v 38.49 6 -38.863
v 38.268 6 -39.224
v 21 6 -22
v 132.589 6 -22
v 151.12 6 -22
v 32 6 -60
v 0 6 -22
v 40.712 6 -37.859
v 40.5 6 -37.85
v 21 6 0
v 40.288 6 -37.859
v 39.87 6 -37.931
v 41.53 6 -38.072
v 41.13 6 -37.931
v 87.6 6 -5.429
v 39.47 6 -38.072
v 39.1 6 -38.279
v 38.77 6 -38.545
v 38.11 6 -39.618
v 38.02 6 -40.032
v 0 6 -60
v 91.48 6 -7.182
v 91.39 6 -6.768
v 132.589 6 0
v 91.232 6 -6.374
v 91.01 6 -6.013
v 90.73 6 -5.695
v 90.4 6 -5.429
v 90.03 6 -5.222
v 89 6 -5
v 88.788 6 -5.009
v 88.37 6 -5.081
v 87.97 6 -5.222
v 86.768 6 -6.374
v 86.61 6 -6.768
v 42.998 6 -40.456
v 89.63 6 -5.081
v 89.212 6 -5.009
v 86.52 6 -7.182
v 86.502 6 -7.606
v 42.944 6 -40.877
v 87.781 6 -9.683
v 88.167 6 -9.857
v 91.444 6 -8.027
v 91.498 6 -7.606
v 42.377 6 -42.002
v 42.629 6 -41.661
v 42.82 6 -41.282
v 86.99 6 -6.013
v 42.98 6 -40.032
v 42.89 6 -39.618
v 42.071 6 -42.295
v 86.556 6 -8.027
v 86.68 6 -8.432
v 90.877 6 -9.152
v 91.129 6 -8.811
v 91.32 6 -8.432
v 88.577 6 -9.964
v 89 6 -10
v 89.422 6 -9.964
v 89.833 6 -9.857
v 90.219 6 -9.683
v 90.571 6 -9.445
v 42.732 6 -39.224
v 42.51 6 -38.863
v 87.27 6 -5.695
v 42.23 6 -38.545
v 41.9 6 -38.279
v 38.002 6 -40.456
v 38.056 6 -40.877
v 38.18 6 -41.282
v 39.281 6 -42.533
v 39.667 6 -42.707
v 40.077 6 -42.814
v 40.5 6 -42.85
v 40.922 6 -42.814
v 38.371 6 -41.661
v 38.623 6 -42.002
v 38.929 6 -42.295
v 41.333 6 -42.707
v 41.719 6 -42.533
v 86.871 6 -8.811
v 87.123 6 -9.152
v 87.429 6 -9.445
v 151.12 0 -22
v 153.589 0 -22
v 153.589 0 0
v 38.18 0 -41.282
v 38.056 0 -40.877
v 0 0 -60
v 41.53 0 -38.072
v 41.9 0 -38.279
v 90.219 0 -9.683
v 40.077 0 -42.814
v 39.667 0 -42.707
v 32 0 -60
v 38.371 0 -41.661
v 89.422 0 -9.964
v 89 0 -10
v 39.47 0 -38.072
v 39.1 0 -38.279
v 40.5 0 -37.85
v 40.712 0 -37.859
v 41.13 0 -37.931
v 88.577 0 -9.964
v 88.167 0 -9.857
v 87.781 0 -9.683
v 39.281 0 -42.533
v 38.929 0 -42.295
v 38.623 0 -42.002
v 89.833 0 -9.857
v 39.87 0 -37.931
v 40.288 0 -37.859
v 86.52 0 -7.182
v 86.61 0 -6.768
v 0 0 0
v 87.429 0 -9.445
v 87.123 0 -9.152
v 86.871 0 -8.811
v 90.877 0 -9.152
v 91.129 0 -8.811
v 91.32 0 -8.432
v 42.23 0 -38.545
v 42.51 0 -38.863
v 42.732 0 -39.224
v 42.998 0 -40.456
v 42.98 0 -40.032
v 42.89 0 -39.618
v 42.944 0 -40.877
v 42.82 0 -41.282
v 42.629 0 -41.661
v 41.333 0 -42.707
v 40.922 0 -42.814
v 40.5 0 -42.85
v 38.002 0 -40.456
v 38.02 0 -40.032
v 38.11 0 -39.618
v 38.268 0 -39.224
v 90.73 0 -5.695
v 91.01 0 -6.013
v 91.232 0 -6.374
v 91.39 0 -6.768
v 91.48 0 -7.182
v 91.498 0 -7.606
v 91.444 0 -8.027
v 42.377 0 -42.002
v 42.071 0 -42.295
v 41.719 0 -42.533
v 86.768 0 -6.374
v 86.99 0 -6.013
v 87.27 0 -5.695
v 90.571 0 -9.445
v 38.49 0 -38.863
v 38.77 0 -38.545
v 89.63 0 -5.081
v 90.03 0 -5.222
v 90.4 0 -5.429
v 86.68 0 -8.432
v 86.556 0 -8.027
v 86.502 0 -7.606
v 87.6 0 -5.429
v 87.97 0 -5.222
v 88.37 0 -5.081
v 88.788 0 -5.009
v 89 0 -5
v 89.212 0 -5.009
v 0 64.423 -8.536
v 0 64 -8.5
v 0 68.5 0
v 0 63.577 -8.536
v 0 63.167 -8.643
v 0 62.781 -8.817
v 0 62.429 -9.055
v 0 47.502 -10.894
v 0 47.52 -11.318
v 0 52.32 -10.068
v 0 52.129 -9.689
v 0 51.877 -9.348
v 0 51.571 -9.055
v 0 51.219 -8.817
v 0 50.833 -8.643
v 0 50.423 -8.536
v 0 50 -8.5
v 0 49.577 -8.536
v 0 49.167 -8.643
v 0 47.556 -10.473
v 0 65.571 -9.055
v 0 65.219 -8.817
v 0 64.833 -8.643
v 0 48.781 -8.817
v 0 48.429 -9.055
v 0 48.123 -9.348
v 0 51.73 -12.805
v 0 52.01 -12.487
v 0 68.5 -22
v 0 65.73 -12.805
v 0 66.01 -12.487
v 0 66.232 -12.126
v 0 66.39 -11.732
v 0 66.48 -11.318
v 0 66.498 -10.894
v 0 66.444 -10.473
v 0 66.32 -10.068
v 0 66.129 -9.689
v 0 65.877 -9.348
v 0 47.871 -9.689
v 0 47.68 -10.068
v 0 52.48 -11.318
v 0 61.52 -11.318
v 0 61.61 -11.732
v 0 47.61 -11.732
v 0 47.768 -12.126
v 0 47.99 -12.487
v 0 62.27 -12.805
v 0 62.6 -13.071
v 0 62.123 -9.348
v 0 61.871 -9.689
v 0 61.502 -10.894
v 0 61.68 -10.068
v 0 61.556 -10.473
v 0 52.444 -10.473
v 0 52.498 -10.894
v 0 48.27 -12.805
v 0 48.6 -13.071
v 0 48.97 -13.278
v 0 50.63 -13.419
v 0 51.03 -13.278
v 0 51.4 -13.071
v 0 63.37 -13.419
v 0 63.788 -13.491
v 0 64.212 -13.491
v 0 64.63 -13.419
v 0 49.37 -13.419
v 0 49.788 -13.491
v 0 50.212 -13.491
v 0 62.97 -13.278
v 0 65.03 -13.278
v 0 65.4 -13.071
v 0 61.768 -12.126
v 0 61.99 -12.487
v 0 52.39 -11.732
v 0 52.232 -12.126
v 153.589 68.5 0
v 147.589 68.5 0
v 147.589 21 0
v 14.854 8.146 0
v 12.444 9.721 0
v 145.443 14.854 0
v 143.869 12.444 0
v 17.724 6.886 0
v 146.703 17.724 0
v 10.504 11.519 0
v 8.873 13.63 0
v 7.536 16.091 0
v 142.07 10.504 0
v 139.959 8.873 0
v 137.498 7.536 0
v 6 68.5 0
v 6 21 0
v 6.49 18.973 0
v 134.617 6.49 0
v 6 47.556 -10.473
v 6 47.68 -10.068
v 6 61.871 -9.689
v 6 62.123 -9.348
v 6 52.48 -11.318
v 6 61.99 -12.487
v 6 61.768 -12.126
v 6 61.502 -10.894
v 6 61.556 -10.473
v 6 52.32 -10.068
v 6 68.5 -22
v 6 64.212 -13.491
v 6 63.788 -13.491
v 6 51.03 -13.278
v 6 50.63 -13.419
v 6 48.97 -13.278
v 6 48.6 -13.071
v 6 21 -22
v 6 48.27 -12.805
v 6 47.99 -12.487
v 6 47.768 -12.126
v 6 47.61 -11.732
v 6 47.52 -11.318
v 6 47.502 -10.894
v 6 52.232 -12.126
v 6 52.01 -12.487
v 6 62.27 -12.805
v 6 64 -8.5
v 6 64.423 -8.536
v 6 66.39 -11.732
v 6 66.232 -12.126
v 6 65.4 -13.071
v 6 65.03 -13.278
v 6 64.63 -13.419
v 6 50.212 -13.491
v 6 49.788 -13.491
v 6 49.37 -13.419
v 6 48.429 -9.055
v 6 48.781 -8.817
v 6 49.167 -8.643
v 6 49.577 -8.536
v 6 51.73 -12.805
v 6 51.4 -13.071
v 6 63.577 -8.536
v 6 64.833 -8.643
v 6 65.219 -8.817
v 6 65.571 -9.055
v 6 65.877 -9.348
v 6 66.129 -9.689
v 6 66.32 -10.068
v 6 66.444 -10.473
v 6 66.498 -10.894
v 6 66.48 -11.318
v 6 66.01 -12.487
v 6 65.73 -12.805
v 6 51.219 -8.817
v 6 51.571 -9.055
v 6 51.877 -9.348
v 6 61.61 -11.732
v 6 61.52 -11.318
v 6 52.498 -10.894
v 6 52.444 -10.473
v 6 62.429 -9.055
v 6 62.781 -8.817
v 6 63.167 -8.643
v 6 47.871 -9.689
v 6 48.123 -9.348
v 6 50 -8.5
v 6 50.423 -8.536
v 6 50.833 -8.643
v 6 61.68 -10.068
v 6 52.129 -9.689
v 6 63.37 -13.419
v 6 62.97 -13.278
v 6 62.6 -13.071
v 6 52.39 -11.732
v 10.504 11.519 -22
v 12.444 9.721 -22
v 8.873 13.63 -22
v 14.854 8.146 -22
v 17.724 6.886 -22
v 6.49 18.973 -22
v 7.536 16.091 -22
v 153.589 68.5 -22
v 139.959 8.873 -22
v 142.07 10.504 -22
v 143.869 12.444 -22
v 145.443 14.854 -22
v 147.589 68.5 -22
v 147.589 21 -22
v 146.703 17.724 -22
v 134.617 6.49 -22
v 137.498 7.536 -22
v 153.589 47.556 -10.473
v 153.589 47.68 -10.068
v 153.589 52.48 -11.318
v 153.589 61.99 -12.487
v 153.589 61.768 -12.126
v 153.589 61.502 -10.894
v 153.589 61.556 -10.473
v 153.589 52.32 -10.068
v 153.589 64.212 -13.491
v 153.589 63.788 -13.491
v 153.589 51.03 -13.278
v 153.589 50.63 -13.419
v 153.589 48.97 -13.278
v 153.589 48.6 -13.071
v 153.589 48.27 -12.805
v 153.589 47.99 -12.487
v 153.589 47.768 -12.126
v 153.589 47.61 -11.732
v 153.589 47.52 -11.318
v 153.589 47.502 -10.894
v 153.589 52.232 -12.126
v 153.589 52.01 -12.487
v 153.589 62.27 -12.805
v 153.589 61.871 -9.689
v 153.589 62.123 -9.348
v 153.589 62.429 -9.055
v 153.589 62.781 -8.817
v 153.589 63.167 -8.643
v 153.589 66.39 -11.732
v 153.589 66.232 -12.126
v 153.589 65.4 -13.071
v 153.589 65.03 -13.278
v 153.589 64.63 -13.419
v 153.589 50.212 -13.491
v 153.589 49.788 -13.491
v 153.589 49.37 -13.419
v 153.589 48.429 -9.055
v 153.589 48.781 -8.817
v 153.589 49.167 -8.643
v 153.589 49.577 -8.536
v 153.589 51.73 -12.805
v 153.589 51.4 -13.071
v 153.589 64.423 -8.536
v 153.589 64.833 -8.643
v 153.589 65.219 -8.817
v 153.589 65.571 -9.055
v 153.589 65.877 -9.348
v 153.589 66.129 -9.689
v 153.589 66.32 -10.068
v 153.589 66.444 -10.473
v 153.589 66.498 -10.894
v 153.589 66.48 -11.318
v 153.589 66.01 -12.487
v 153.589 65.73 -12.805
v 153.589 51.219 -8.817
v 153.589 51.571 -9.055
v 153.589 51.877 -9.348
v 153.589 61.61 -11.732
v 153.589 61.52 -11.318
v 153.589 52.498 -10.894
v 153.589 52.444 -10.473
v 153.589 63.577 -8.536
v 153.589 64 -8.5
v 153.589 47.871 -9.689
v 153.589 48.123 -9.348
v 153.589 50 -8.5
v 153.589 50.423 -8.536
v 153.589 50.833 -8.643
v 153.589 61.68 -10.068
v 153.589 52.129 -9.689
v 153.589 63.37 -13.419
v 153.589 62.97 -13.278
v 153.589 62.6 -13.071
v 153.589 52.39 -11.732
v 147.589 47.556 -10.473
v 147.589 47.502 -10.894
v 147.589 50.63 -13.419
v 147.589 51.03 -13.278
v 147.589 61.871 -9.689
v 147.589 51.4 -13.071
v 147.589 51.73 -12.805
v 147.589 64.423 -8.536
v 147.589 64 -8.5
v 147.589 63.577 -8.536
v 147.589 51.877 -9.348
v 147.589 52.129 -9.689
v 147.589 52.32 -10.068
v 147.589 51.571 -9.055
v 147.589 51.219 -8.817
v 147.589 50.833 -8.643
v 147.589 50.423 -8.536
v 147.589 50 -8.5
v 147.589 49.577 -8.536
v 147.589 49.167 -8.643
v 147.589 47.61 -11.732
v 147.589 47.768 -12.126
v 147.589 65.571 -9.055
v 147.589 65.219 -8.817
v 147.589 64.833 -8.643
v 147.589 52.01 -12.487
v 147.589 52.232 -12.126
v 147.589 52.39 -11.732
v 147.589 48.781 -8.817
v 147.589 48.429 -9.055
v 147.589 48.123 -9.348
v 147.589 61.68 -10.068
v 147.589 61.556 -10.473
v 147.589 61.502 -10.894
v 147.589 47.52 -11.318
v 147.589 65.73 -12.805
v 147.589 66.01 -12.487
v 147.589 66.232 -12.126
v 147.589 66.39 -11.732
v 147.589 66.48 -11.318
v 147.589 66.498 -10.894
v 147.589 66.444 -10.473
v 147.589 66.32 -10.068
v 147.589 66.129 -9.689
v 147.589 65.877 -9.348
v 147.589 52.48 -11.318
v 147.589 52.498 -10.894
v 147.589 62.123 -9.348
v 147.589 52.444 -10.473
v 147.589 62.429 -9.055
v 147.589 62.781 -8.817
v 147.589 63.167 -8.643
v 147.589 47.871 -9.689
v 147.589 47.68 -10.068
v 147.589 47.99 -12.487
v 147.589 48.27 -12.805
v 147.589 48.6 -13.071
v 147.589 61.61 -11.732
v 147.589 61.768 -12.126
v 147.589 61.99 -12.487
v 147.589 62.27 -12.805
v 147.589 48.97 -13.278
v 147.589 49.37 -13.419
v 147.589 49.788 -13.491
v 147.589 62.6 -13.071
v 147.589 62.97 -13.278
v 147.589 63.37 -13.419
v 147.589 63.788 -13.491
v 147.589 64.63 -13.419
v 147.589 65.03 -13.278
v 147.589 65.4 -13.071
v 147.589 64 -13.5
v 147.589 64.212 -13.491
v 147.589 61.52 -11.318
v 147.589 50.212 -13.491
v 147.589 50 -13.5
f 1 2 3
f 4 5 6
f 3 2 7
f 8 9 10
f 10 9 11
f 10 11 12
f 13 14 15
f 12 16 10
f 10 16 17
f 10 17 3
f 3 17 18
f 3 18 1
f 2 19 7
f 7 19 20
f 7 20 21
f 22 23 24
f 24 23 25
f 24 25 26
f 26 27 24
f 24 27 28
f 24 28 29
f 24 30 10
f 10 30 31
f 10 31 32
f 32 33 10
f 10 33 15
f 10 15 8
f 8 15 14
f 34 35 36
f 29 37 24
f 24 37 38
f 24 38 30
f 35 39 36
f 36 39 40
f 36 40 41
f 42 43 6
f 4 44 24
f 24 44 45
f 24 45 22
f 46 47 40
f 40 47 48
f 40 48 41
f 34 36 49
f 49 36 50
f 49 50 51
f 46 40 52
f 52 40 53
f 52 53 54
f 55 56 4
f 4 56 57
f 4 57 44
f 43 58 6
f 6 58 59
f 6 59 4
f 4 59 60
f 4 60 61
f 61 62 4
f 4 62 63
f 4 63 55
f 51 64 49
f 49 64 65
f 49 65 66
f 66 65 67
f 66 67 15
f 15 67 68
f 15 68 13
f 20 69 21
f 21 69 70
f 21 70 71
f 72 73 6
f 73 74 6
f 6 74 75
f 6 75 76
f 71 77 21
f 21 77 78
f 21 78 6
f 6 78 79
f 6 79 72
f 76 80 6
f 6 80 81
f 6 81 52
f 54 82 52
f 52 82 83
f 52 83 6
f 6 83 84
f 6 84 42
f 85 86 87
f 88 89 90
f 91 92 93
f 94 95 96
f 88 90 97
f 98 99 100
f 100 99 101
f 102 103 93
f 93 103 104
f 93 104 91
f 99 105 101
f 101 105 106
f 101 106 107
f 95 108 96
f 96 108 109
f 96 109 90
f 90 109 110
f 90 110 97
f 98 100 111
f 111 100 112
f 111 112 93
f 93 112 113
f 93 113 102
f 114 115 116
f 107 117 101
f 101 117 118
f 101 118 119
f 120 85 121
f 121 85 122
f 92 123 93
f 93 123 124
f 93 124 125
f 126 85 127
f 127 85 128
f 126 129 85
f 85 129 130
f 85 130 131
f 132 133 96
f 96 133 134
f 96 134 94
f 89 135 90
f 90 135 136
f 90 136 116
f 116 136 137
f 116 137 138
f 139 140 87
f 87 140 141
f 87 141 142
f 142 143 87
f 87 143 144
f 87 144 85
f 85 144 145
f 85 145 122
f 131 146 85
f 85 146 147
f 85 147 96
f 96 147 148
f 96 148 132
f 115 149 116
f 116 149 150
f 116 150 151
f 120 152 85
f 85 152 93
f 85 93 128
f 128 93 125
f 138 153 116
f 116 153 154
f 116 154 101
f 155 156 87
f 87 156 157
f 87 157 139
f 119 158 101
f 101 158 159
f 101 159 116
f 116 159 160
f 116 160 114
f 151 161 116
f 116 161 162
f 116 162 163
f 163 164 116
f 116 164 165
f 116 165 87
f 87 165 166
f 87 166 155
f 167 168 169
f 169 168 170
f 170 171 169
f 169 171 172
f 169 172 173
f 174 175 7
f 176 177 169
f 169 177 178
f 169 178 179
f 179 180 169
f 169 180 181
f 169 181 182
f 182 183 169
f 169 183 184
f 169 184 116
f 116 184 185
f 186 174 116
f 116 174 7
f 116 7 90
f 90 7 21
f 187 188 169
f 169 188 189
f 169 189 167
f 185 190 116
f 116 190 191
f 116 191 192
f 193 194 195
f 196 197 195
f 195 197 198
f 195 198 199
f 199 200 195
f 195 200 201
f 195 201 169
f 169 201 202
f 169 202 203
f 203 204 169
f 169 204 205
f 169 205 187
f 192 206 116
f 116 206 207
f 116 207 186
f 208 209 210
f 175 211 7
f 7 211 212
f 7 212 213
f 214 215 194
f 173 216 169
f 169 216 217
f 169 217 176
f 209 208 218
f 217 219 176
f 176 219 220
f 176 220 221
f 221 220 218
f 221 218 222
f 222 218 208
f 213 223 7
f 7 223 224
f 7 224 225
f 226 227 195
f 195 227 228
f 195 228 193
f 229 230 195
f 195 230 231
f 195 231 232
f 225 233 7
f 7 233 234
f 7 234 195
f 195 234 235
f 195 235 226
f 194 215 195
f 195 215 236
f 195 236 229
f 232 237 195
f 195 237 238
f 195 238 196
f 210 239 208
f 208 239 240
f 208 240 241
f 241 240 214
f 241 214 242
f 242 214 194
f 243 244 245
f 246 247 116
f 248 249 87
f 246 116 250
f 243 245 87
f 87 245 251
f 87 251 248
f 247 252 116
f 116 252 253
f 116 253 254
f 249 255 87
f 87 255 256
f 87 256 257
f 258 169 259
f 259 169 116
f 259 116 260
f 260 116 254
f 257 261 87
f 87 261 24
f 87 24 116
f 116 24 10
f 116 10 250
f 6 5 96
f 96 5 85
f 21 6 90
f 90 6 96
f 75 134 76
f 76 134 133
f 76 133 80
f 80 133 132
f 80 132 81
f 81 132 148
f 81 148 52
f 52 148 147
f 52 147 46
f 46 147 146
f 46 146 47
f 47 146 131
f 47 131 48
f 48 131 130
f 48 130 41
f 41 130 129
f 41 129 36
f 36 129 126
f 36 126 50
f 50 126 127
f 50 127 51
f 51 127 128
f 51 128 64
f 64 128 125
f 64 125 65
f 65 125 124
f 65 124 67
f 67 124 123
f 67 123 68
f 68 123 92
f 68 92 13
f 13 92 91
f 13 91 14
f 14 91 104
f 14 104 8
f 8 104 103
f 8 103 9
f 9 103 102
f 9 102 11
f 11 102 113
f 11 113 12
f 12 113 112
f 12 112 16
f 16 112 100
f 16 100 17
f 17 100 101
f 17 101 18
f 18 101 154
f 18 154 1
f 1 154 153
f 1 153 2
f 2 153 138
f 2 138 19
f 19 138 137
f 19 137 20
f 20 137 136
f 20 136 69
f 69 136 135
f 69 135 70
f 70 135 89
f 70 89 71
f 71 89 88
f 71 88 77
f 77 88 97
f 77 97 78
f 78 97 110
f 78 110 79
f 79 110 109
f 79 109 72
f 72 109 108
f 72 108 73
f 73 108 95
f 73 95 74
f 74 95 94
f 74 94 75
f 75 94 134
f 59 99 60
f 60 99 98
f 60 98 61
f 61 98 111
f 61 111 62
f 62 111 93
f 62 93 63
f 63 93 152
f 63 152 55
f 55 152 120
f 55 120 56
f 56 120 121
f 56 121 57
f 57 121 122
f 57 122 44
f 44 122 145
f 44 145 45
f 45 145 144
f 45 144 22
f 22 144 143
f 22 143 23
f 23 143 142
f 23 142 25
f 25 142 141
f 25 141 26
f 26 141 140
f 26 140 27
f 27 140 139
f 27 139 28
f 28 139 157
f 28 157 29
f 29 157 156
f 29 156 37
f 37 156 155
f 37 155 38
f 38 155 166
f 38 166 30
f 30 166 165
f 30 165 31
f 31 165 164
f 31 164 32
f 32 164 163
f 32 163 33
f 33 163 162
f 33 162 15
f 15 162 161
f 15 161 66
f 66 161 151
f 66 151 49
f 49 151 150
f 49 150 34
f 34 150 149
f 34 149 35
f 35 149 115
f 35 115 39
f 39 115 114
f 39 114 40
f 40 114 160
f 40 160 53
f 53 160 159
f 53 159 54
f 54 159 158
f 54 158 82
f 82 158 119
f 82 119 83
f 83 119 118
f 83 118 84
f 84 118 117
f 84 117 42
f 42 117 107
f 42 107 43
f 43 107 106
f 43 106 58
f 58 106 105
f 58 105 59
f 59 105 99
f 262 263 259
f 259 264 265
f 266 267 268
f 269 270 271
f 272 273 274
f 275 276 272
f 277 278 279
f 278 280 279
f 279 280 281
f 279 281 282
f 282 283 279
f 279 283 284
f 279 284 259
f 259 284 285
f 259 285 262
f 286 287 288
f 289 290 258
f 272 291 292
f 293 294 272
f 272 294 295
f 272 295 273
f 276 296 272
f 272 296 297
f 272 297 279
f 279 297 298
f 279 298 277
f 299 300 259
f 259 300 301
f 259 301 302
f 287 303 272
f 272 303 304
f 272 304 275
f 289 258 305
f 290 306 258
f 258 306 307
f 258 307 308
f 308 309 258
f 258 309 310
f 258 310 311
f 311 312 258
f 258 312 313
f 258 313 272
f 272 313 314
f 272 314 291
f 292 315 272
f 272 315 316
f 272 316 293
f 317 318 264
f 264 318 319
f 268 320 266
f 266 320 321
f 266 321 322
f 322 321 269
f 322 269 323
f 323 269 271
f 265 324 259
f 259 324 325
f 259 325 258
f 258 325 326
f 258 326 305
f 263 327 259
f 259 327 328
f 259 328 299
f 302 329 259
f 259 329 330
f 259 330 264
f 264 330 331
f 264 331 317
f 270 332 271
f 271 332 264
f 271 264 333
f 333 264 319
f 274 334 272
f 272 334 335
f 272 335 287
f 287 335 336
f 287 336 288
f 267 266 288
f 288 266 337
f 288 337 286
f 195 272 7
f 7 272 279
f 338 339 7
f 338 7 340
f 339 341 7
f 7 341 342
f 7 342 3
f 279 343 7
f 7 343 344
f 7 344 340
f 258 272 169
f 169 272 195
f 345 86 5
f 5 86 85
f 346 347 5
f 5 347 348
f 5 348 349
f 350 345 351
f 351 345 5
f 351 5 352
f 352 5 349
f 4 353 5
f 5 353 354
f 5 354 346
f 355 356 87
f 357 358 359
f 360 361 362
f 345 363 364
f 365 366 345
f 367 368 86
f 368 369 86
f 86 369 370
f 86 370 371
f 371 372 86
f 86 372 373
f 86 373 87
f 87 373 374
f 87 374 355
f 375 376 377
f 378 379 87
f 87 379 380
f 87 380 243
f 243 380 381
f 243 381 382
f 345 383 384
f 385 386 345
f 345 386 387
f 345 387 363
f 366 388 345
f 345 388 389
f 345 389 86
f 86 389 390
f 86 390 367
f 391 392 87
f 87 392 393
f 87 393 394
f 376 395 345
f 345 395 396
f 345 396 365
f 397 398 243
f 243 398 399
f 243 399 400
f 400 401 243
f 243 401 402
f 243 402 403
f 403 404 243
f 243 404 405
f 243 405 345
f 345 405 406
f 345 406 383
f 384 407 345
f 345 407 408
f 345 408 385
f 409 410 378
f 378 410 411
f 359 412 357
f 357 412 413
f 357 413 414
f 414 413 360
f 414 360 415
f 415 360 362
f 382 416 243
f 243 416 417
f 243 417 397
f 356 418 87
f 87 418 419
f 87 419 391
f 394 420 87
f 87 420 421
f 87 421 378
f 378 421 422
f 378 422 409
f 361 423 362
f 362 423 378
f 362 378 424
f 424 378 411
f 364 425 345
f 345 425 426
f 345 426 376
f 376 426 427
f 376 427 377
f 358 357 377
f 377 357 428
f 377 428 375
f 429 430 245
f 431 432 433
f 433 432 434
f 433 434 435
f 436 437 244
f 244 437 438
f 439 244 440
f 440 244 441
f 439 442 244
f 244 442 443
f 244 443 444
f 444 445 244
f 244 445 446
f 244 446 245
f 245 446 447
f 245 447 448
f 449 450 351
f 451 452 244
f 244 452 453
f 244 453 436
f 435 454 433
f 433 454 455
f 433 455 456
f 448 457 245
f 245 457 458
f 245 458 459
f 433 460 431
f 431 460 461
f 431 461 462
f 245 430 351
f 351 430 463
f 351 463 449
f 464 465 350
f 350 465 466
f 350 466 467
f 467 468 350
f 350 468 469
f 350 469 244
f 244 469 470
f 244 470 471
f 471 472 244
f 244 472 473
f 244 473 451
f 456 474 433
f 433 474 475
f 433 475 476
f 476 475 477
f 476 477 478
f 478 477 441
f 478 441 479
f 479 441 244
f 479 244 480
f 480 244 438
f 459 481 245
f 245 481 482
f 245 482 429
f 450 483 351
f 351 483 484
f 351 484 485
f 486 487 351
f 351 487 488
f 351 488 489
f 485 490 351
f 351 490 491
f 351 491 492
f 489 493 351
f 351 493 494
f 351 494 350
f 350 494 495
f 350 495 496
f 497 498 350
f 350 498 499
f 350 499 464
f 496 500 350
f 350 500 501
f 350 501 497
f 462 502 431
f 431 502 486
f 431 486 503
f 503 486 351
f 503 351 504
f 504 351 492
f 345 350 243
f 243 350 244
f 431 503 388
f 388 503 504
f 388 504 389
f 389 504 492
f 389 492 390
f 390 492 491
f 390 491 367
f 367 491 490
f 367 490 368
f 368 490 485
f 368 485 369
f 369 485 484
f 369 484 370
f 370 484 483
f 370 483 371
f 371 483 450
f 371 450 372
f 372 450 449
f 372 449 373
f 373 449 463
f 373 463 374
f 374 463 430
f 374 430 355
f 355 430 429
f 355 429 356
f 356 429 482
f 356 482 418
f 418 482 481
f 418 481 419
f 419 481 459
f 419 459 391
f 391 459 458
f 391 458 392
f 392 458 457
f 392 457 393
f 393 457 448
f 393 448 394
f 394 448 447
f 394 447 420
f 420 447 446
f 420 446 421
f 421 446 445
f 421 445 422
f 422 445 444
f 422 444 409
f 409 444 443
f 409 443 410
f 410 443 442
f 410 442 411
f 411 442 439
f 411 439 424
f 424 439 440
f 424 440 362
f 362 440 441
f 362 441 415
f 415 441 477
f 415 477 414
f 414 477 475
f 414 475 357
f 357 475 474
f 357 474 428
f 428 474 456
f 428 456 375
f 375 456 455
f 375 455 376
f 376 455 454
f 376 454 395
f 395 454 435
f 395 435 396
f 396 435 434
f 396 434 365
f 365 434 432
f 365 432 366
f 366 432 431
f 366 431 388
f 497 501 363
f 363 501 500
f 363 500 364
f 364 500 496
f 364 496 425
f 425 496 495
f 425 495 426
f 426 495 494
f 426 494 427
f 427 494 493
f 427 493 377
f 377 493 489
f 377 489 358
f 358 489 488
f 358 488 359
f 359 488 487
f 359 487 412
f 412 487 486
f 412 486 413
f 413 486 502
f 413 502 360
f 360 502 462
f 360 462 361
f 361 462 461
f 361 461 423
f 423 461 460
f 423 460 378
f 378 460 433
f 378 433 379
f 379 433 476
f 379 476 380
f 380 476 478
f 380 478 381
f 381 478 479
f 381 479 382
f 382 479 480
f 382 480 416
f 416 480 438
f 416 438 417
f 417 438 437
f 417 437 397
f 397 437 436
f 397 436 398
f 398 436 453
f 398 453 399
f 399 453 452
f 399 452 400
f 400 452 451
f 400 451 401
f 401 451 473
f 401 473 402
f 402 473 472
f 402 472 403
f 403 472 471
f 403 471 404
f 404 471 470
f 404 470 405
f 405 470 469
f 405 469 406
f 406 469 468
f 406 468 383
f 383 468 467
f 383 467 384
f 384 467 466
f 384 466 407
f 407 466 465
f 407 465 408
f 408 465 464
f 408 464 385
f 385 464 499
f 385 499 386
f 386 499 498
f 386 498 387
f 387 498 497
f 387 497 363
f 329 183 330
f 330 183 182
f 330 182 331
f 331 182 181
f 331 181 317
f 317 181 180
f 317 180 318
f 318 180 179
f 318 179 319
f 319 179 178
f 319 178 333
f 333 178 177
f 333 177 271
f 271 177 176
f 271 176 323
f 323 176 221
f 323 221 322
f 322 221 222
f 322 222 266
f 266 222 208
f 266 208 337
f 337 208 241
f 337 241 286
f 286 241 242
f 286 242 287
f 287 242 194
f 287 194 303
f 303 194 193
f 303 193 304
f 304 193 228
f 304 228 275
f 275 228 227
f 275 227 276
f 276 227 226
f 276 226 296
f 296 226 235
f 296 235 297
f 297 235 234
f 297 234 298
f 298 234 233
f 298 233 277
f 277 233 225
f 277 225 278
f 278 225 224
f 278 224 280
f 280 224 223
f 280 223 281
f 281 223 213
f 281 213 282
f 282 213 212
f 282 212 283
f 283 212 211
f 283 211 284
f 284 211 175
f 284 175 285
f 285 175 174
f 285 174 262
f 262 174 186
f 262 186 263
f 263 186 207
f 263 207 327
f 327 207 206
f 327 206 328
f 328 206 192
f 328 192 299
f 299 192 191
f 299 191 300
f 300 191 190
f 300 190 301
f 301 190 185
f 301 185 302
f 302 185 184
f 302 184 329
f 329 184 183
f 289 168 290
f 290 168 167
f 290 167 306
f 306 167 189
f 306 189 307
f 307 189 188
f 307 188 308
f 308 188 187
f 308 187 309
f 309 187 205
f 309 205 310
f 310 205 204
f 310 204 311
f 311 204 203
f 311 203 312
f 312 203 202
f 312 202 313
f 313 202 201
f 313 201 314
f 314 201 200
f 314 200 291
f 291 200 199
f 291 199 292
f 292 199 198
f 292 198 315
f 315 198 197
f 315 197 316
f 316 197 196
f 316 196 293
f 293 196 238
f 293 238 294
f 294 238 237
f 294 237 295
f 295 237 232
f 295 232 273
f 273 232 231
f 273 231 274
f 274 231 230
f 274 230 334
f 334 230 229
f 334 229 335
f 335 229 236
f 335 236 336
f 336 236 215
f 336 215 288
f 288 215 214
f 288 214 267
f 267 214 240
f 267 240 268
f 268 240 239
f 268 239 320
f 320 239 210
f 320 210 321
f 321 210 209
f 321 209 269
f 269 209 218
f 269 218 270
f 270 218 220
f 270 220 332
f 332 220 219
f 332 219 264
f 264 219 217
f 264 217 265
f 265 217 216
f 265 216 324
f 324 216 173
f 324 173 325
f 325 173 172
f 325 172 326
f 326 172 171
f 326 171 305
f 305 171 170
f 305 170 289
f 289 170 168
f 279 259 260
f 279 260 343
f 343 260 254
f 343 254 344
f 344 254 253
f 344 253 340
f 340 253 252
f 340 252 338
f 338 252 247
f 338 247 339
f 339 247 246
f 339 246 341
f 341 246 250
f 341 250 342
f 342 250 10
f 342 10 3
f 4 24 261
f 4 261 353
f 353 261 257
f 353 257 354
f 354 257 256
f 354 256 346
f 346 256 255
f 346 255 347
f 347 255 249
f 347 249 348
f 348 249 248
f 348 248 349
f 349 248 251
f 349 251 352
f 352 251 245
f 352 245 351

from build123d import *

# Parameters (mm, degrees)
SKETCH1_R                       = 2.5
BOSS_EXTRUDE1_DEPTH             = 6
SKETCH2_W                       = 6
SKETCH2_H                       = 22
BOSS_EXTRUDE2_DEPTH             = 62.5
BOSS_EXTRUDE3_REACH             = 176.194
SKETCH4_W                       = 6
SKETCH4_H                       = 22
BOSS_EXTRUDE3_DIRECTION_2_REACH = 176.194
SKETCH3_R                       = 2.5
CUT_EXTRUDE2_DEPTH              = 179.555261525
BOSS_EXTRUDE4_DEPTH             = 22


with BuildPart() as part:
    # Sketch1 → Boss-Extrude1 (new body)
    with BuildSketch(Plane(origin=(0, 0, 0), x_dir=(1, 0, 0), z_dir=(0, 1, 0))):
        Polygon((32, 60), (151.12, 22), (151.12, 0), (0, 0), (0, 60), align=None)
        with Locations(Location((40.5, 40.35, 0), (0, 0, 270))):
            Circle(SKETCH1_R, mode=Mode.SUBTRACT)
        with Locations(Location((89, 7.5, 0), (0, 0, 270))):
            Circle(SKETCH1_R, mode=Mode.SUBTRACT)
    extrude(amount=BOSS_EXTRUDE1_DEPTH)

    # Sketch2 → Boss-Extrude2 (add)
    with BuildSketch(Plane(origin=(0, 6, 0), x_dir=(1, 0, 0), z_dir=(0, 1, 0))):
        with Locations((3, 11)):
            Rectangle(SKETCH2_W, SKETCH2_H)
    extrude(amount=BOSS_EXTRUDE2_DEPTH)

    # Boss-Extrude3: up to this face of the body (flat: up to its plane)
    boss_extrude3_end = Plane(part.part.faces().sort_by_distance((3, 68.5, -11))[0])
    # Sketch4 → Boss-Extrude3 (add, up to the picked face)
    with BuildSketch(Plane(origin=(0, 6, 0), x_dir=(1, 0, 0), z_dir=(0, 1, 0)), mode=Mode.PRIVATE) as boss_extrude3_sk1:
        with Locations((150.589489934, 11)):
            Rectangle(SKETCH4_W, SKETCH4_H)
    boss_extrude3_tool1 = split(extrude(boss_extrude3_sk1.sketch, amount=BOSS_EXTRUDE3_REACH, mode=Mode.PRIVATE), bisect_by=boss_extrude3_end, keep=Keep.BOTH, mode=Mode.PRIVATE)
    add(boss_extrude3_tool1.solids().sort_by(Axis((150.58949, 6, -11), (0, 1, 0)))[0])

    # Boss-Extrude3 direction 2: up to this face of the body (flat: up to its plane)
    boss_extrude3_direction_2_end = Plane(part.part.faces().sort_by_distance((63.627139695, 0, -24.235973562))[0])
    # Sketch4 → Boss-Extrude3 direction 2 (add, up to the picked face)
    with BuildSketch(Plane(origin=(0, 6, 0), x_dir=(1, 0, 0), z_dir=(0, 1, 0)), mode=Mode.PRIVATE) as boss_extrude3_direction_2_sk1:
        with Locations((150.589489934, 11)):
            Rectangle(SKETCH4_W, SKETCH4_H)
    boss_extrude3_direction_2_tool1 = split(extrude(boss_extrude3_direction_2_sk1.sketch, amount=-BOSS_EXTRUDE3_DIRECTION_2_REACH, mode=Mode.PRIVATE), bisect_by=boss_extrude3_direction_2_end, keep=Keep.BOTH, mode=Mode.PRIVATE)
    add(boss_extrude3_direction_2_tool1.solids().sort_by(Axis((150.58949, 6, -11), (0, -1, 0)))[0])

    # Sketch3 → Cut-Extrude2 (cut, through all)
    with BuildSketch(Plane.ZY):
        with Locations((-11, 64)):
            Circle(SKETCH3_R)
        with Locations((-11, 50)):
            Circle(SKETCH3_R)
    extrude(amount=-CUT_EXTRUDE2_DEPTH, mode=Mode.SUBTRACT)

    # Sketch5 → Boss-Extrude4 (add)
    with BuildSketch(Plane.XY):
        with BuildLine():
            Line((6, 21), (6, 6))
            Line((6, 6), (21, 6))
            add(Edge.make_bspline(
                [(6, 21), (8.5, 8.5), (21, 6)],
                knots=[0, 0, 0, 1, 1, 1], degree=2))
        make_face()
        with BuildLine():
            Line((132.589489934, 6), (147.589489934, 6))
            Line((147.589489934, 6), (147.589489934, 21))
            add(Edge.make_bspline(
                [(147.589489934, 21), (145.089489934, 8.5), (132.589489934, 6)],
                knots=[0, 0, 0, 1, 1, 1], degree=2))
        make_face()
    extrude(amount=-BOSS_EXTRUDE4_DEPTH)


solid = part.part
